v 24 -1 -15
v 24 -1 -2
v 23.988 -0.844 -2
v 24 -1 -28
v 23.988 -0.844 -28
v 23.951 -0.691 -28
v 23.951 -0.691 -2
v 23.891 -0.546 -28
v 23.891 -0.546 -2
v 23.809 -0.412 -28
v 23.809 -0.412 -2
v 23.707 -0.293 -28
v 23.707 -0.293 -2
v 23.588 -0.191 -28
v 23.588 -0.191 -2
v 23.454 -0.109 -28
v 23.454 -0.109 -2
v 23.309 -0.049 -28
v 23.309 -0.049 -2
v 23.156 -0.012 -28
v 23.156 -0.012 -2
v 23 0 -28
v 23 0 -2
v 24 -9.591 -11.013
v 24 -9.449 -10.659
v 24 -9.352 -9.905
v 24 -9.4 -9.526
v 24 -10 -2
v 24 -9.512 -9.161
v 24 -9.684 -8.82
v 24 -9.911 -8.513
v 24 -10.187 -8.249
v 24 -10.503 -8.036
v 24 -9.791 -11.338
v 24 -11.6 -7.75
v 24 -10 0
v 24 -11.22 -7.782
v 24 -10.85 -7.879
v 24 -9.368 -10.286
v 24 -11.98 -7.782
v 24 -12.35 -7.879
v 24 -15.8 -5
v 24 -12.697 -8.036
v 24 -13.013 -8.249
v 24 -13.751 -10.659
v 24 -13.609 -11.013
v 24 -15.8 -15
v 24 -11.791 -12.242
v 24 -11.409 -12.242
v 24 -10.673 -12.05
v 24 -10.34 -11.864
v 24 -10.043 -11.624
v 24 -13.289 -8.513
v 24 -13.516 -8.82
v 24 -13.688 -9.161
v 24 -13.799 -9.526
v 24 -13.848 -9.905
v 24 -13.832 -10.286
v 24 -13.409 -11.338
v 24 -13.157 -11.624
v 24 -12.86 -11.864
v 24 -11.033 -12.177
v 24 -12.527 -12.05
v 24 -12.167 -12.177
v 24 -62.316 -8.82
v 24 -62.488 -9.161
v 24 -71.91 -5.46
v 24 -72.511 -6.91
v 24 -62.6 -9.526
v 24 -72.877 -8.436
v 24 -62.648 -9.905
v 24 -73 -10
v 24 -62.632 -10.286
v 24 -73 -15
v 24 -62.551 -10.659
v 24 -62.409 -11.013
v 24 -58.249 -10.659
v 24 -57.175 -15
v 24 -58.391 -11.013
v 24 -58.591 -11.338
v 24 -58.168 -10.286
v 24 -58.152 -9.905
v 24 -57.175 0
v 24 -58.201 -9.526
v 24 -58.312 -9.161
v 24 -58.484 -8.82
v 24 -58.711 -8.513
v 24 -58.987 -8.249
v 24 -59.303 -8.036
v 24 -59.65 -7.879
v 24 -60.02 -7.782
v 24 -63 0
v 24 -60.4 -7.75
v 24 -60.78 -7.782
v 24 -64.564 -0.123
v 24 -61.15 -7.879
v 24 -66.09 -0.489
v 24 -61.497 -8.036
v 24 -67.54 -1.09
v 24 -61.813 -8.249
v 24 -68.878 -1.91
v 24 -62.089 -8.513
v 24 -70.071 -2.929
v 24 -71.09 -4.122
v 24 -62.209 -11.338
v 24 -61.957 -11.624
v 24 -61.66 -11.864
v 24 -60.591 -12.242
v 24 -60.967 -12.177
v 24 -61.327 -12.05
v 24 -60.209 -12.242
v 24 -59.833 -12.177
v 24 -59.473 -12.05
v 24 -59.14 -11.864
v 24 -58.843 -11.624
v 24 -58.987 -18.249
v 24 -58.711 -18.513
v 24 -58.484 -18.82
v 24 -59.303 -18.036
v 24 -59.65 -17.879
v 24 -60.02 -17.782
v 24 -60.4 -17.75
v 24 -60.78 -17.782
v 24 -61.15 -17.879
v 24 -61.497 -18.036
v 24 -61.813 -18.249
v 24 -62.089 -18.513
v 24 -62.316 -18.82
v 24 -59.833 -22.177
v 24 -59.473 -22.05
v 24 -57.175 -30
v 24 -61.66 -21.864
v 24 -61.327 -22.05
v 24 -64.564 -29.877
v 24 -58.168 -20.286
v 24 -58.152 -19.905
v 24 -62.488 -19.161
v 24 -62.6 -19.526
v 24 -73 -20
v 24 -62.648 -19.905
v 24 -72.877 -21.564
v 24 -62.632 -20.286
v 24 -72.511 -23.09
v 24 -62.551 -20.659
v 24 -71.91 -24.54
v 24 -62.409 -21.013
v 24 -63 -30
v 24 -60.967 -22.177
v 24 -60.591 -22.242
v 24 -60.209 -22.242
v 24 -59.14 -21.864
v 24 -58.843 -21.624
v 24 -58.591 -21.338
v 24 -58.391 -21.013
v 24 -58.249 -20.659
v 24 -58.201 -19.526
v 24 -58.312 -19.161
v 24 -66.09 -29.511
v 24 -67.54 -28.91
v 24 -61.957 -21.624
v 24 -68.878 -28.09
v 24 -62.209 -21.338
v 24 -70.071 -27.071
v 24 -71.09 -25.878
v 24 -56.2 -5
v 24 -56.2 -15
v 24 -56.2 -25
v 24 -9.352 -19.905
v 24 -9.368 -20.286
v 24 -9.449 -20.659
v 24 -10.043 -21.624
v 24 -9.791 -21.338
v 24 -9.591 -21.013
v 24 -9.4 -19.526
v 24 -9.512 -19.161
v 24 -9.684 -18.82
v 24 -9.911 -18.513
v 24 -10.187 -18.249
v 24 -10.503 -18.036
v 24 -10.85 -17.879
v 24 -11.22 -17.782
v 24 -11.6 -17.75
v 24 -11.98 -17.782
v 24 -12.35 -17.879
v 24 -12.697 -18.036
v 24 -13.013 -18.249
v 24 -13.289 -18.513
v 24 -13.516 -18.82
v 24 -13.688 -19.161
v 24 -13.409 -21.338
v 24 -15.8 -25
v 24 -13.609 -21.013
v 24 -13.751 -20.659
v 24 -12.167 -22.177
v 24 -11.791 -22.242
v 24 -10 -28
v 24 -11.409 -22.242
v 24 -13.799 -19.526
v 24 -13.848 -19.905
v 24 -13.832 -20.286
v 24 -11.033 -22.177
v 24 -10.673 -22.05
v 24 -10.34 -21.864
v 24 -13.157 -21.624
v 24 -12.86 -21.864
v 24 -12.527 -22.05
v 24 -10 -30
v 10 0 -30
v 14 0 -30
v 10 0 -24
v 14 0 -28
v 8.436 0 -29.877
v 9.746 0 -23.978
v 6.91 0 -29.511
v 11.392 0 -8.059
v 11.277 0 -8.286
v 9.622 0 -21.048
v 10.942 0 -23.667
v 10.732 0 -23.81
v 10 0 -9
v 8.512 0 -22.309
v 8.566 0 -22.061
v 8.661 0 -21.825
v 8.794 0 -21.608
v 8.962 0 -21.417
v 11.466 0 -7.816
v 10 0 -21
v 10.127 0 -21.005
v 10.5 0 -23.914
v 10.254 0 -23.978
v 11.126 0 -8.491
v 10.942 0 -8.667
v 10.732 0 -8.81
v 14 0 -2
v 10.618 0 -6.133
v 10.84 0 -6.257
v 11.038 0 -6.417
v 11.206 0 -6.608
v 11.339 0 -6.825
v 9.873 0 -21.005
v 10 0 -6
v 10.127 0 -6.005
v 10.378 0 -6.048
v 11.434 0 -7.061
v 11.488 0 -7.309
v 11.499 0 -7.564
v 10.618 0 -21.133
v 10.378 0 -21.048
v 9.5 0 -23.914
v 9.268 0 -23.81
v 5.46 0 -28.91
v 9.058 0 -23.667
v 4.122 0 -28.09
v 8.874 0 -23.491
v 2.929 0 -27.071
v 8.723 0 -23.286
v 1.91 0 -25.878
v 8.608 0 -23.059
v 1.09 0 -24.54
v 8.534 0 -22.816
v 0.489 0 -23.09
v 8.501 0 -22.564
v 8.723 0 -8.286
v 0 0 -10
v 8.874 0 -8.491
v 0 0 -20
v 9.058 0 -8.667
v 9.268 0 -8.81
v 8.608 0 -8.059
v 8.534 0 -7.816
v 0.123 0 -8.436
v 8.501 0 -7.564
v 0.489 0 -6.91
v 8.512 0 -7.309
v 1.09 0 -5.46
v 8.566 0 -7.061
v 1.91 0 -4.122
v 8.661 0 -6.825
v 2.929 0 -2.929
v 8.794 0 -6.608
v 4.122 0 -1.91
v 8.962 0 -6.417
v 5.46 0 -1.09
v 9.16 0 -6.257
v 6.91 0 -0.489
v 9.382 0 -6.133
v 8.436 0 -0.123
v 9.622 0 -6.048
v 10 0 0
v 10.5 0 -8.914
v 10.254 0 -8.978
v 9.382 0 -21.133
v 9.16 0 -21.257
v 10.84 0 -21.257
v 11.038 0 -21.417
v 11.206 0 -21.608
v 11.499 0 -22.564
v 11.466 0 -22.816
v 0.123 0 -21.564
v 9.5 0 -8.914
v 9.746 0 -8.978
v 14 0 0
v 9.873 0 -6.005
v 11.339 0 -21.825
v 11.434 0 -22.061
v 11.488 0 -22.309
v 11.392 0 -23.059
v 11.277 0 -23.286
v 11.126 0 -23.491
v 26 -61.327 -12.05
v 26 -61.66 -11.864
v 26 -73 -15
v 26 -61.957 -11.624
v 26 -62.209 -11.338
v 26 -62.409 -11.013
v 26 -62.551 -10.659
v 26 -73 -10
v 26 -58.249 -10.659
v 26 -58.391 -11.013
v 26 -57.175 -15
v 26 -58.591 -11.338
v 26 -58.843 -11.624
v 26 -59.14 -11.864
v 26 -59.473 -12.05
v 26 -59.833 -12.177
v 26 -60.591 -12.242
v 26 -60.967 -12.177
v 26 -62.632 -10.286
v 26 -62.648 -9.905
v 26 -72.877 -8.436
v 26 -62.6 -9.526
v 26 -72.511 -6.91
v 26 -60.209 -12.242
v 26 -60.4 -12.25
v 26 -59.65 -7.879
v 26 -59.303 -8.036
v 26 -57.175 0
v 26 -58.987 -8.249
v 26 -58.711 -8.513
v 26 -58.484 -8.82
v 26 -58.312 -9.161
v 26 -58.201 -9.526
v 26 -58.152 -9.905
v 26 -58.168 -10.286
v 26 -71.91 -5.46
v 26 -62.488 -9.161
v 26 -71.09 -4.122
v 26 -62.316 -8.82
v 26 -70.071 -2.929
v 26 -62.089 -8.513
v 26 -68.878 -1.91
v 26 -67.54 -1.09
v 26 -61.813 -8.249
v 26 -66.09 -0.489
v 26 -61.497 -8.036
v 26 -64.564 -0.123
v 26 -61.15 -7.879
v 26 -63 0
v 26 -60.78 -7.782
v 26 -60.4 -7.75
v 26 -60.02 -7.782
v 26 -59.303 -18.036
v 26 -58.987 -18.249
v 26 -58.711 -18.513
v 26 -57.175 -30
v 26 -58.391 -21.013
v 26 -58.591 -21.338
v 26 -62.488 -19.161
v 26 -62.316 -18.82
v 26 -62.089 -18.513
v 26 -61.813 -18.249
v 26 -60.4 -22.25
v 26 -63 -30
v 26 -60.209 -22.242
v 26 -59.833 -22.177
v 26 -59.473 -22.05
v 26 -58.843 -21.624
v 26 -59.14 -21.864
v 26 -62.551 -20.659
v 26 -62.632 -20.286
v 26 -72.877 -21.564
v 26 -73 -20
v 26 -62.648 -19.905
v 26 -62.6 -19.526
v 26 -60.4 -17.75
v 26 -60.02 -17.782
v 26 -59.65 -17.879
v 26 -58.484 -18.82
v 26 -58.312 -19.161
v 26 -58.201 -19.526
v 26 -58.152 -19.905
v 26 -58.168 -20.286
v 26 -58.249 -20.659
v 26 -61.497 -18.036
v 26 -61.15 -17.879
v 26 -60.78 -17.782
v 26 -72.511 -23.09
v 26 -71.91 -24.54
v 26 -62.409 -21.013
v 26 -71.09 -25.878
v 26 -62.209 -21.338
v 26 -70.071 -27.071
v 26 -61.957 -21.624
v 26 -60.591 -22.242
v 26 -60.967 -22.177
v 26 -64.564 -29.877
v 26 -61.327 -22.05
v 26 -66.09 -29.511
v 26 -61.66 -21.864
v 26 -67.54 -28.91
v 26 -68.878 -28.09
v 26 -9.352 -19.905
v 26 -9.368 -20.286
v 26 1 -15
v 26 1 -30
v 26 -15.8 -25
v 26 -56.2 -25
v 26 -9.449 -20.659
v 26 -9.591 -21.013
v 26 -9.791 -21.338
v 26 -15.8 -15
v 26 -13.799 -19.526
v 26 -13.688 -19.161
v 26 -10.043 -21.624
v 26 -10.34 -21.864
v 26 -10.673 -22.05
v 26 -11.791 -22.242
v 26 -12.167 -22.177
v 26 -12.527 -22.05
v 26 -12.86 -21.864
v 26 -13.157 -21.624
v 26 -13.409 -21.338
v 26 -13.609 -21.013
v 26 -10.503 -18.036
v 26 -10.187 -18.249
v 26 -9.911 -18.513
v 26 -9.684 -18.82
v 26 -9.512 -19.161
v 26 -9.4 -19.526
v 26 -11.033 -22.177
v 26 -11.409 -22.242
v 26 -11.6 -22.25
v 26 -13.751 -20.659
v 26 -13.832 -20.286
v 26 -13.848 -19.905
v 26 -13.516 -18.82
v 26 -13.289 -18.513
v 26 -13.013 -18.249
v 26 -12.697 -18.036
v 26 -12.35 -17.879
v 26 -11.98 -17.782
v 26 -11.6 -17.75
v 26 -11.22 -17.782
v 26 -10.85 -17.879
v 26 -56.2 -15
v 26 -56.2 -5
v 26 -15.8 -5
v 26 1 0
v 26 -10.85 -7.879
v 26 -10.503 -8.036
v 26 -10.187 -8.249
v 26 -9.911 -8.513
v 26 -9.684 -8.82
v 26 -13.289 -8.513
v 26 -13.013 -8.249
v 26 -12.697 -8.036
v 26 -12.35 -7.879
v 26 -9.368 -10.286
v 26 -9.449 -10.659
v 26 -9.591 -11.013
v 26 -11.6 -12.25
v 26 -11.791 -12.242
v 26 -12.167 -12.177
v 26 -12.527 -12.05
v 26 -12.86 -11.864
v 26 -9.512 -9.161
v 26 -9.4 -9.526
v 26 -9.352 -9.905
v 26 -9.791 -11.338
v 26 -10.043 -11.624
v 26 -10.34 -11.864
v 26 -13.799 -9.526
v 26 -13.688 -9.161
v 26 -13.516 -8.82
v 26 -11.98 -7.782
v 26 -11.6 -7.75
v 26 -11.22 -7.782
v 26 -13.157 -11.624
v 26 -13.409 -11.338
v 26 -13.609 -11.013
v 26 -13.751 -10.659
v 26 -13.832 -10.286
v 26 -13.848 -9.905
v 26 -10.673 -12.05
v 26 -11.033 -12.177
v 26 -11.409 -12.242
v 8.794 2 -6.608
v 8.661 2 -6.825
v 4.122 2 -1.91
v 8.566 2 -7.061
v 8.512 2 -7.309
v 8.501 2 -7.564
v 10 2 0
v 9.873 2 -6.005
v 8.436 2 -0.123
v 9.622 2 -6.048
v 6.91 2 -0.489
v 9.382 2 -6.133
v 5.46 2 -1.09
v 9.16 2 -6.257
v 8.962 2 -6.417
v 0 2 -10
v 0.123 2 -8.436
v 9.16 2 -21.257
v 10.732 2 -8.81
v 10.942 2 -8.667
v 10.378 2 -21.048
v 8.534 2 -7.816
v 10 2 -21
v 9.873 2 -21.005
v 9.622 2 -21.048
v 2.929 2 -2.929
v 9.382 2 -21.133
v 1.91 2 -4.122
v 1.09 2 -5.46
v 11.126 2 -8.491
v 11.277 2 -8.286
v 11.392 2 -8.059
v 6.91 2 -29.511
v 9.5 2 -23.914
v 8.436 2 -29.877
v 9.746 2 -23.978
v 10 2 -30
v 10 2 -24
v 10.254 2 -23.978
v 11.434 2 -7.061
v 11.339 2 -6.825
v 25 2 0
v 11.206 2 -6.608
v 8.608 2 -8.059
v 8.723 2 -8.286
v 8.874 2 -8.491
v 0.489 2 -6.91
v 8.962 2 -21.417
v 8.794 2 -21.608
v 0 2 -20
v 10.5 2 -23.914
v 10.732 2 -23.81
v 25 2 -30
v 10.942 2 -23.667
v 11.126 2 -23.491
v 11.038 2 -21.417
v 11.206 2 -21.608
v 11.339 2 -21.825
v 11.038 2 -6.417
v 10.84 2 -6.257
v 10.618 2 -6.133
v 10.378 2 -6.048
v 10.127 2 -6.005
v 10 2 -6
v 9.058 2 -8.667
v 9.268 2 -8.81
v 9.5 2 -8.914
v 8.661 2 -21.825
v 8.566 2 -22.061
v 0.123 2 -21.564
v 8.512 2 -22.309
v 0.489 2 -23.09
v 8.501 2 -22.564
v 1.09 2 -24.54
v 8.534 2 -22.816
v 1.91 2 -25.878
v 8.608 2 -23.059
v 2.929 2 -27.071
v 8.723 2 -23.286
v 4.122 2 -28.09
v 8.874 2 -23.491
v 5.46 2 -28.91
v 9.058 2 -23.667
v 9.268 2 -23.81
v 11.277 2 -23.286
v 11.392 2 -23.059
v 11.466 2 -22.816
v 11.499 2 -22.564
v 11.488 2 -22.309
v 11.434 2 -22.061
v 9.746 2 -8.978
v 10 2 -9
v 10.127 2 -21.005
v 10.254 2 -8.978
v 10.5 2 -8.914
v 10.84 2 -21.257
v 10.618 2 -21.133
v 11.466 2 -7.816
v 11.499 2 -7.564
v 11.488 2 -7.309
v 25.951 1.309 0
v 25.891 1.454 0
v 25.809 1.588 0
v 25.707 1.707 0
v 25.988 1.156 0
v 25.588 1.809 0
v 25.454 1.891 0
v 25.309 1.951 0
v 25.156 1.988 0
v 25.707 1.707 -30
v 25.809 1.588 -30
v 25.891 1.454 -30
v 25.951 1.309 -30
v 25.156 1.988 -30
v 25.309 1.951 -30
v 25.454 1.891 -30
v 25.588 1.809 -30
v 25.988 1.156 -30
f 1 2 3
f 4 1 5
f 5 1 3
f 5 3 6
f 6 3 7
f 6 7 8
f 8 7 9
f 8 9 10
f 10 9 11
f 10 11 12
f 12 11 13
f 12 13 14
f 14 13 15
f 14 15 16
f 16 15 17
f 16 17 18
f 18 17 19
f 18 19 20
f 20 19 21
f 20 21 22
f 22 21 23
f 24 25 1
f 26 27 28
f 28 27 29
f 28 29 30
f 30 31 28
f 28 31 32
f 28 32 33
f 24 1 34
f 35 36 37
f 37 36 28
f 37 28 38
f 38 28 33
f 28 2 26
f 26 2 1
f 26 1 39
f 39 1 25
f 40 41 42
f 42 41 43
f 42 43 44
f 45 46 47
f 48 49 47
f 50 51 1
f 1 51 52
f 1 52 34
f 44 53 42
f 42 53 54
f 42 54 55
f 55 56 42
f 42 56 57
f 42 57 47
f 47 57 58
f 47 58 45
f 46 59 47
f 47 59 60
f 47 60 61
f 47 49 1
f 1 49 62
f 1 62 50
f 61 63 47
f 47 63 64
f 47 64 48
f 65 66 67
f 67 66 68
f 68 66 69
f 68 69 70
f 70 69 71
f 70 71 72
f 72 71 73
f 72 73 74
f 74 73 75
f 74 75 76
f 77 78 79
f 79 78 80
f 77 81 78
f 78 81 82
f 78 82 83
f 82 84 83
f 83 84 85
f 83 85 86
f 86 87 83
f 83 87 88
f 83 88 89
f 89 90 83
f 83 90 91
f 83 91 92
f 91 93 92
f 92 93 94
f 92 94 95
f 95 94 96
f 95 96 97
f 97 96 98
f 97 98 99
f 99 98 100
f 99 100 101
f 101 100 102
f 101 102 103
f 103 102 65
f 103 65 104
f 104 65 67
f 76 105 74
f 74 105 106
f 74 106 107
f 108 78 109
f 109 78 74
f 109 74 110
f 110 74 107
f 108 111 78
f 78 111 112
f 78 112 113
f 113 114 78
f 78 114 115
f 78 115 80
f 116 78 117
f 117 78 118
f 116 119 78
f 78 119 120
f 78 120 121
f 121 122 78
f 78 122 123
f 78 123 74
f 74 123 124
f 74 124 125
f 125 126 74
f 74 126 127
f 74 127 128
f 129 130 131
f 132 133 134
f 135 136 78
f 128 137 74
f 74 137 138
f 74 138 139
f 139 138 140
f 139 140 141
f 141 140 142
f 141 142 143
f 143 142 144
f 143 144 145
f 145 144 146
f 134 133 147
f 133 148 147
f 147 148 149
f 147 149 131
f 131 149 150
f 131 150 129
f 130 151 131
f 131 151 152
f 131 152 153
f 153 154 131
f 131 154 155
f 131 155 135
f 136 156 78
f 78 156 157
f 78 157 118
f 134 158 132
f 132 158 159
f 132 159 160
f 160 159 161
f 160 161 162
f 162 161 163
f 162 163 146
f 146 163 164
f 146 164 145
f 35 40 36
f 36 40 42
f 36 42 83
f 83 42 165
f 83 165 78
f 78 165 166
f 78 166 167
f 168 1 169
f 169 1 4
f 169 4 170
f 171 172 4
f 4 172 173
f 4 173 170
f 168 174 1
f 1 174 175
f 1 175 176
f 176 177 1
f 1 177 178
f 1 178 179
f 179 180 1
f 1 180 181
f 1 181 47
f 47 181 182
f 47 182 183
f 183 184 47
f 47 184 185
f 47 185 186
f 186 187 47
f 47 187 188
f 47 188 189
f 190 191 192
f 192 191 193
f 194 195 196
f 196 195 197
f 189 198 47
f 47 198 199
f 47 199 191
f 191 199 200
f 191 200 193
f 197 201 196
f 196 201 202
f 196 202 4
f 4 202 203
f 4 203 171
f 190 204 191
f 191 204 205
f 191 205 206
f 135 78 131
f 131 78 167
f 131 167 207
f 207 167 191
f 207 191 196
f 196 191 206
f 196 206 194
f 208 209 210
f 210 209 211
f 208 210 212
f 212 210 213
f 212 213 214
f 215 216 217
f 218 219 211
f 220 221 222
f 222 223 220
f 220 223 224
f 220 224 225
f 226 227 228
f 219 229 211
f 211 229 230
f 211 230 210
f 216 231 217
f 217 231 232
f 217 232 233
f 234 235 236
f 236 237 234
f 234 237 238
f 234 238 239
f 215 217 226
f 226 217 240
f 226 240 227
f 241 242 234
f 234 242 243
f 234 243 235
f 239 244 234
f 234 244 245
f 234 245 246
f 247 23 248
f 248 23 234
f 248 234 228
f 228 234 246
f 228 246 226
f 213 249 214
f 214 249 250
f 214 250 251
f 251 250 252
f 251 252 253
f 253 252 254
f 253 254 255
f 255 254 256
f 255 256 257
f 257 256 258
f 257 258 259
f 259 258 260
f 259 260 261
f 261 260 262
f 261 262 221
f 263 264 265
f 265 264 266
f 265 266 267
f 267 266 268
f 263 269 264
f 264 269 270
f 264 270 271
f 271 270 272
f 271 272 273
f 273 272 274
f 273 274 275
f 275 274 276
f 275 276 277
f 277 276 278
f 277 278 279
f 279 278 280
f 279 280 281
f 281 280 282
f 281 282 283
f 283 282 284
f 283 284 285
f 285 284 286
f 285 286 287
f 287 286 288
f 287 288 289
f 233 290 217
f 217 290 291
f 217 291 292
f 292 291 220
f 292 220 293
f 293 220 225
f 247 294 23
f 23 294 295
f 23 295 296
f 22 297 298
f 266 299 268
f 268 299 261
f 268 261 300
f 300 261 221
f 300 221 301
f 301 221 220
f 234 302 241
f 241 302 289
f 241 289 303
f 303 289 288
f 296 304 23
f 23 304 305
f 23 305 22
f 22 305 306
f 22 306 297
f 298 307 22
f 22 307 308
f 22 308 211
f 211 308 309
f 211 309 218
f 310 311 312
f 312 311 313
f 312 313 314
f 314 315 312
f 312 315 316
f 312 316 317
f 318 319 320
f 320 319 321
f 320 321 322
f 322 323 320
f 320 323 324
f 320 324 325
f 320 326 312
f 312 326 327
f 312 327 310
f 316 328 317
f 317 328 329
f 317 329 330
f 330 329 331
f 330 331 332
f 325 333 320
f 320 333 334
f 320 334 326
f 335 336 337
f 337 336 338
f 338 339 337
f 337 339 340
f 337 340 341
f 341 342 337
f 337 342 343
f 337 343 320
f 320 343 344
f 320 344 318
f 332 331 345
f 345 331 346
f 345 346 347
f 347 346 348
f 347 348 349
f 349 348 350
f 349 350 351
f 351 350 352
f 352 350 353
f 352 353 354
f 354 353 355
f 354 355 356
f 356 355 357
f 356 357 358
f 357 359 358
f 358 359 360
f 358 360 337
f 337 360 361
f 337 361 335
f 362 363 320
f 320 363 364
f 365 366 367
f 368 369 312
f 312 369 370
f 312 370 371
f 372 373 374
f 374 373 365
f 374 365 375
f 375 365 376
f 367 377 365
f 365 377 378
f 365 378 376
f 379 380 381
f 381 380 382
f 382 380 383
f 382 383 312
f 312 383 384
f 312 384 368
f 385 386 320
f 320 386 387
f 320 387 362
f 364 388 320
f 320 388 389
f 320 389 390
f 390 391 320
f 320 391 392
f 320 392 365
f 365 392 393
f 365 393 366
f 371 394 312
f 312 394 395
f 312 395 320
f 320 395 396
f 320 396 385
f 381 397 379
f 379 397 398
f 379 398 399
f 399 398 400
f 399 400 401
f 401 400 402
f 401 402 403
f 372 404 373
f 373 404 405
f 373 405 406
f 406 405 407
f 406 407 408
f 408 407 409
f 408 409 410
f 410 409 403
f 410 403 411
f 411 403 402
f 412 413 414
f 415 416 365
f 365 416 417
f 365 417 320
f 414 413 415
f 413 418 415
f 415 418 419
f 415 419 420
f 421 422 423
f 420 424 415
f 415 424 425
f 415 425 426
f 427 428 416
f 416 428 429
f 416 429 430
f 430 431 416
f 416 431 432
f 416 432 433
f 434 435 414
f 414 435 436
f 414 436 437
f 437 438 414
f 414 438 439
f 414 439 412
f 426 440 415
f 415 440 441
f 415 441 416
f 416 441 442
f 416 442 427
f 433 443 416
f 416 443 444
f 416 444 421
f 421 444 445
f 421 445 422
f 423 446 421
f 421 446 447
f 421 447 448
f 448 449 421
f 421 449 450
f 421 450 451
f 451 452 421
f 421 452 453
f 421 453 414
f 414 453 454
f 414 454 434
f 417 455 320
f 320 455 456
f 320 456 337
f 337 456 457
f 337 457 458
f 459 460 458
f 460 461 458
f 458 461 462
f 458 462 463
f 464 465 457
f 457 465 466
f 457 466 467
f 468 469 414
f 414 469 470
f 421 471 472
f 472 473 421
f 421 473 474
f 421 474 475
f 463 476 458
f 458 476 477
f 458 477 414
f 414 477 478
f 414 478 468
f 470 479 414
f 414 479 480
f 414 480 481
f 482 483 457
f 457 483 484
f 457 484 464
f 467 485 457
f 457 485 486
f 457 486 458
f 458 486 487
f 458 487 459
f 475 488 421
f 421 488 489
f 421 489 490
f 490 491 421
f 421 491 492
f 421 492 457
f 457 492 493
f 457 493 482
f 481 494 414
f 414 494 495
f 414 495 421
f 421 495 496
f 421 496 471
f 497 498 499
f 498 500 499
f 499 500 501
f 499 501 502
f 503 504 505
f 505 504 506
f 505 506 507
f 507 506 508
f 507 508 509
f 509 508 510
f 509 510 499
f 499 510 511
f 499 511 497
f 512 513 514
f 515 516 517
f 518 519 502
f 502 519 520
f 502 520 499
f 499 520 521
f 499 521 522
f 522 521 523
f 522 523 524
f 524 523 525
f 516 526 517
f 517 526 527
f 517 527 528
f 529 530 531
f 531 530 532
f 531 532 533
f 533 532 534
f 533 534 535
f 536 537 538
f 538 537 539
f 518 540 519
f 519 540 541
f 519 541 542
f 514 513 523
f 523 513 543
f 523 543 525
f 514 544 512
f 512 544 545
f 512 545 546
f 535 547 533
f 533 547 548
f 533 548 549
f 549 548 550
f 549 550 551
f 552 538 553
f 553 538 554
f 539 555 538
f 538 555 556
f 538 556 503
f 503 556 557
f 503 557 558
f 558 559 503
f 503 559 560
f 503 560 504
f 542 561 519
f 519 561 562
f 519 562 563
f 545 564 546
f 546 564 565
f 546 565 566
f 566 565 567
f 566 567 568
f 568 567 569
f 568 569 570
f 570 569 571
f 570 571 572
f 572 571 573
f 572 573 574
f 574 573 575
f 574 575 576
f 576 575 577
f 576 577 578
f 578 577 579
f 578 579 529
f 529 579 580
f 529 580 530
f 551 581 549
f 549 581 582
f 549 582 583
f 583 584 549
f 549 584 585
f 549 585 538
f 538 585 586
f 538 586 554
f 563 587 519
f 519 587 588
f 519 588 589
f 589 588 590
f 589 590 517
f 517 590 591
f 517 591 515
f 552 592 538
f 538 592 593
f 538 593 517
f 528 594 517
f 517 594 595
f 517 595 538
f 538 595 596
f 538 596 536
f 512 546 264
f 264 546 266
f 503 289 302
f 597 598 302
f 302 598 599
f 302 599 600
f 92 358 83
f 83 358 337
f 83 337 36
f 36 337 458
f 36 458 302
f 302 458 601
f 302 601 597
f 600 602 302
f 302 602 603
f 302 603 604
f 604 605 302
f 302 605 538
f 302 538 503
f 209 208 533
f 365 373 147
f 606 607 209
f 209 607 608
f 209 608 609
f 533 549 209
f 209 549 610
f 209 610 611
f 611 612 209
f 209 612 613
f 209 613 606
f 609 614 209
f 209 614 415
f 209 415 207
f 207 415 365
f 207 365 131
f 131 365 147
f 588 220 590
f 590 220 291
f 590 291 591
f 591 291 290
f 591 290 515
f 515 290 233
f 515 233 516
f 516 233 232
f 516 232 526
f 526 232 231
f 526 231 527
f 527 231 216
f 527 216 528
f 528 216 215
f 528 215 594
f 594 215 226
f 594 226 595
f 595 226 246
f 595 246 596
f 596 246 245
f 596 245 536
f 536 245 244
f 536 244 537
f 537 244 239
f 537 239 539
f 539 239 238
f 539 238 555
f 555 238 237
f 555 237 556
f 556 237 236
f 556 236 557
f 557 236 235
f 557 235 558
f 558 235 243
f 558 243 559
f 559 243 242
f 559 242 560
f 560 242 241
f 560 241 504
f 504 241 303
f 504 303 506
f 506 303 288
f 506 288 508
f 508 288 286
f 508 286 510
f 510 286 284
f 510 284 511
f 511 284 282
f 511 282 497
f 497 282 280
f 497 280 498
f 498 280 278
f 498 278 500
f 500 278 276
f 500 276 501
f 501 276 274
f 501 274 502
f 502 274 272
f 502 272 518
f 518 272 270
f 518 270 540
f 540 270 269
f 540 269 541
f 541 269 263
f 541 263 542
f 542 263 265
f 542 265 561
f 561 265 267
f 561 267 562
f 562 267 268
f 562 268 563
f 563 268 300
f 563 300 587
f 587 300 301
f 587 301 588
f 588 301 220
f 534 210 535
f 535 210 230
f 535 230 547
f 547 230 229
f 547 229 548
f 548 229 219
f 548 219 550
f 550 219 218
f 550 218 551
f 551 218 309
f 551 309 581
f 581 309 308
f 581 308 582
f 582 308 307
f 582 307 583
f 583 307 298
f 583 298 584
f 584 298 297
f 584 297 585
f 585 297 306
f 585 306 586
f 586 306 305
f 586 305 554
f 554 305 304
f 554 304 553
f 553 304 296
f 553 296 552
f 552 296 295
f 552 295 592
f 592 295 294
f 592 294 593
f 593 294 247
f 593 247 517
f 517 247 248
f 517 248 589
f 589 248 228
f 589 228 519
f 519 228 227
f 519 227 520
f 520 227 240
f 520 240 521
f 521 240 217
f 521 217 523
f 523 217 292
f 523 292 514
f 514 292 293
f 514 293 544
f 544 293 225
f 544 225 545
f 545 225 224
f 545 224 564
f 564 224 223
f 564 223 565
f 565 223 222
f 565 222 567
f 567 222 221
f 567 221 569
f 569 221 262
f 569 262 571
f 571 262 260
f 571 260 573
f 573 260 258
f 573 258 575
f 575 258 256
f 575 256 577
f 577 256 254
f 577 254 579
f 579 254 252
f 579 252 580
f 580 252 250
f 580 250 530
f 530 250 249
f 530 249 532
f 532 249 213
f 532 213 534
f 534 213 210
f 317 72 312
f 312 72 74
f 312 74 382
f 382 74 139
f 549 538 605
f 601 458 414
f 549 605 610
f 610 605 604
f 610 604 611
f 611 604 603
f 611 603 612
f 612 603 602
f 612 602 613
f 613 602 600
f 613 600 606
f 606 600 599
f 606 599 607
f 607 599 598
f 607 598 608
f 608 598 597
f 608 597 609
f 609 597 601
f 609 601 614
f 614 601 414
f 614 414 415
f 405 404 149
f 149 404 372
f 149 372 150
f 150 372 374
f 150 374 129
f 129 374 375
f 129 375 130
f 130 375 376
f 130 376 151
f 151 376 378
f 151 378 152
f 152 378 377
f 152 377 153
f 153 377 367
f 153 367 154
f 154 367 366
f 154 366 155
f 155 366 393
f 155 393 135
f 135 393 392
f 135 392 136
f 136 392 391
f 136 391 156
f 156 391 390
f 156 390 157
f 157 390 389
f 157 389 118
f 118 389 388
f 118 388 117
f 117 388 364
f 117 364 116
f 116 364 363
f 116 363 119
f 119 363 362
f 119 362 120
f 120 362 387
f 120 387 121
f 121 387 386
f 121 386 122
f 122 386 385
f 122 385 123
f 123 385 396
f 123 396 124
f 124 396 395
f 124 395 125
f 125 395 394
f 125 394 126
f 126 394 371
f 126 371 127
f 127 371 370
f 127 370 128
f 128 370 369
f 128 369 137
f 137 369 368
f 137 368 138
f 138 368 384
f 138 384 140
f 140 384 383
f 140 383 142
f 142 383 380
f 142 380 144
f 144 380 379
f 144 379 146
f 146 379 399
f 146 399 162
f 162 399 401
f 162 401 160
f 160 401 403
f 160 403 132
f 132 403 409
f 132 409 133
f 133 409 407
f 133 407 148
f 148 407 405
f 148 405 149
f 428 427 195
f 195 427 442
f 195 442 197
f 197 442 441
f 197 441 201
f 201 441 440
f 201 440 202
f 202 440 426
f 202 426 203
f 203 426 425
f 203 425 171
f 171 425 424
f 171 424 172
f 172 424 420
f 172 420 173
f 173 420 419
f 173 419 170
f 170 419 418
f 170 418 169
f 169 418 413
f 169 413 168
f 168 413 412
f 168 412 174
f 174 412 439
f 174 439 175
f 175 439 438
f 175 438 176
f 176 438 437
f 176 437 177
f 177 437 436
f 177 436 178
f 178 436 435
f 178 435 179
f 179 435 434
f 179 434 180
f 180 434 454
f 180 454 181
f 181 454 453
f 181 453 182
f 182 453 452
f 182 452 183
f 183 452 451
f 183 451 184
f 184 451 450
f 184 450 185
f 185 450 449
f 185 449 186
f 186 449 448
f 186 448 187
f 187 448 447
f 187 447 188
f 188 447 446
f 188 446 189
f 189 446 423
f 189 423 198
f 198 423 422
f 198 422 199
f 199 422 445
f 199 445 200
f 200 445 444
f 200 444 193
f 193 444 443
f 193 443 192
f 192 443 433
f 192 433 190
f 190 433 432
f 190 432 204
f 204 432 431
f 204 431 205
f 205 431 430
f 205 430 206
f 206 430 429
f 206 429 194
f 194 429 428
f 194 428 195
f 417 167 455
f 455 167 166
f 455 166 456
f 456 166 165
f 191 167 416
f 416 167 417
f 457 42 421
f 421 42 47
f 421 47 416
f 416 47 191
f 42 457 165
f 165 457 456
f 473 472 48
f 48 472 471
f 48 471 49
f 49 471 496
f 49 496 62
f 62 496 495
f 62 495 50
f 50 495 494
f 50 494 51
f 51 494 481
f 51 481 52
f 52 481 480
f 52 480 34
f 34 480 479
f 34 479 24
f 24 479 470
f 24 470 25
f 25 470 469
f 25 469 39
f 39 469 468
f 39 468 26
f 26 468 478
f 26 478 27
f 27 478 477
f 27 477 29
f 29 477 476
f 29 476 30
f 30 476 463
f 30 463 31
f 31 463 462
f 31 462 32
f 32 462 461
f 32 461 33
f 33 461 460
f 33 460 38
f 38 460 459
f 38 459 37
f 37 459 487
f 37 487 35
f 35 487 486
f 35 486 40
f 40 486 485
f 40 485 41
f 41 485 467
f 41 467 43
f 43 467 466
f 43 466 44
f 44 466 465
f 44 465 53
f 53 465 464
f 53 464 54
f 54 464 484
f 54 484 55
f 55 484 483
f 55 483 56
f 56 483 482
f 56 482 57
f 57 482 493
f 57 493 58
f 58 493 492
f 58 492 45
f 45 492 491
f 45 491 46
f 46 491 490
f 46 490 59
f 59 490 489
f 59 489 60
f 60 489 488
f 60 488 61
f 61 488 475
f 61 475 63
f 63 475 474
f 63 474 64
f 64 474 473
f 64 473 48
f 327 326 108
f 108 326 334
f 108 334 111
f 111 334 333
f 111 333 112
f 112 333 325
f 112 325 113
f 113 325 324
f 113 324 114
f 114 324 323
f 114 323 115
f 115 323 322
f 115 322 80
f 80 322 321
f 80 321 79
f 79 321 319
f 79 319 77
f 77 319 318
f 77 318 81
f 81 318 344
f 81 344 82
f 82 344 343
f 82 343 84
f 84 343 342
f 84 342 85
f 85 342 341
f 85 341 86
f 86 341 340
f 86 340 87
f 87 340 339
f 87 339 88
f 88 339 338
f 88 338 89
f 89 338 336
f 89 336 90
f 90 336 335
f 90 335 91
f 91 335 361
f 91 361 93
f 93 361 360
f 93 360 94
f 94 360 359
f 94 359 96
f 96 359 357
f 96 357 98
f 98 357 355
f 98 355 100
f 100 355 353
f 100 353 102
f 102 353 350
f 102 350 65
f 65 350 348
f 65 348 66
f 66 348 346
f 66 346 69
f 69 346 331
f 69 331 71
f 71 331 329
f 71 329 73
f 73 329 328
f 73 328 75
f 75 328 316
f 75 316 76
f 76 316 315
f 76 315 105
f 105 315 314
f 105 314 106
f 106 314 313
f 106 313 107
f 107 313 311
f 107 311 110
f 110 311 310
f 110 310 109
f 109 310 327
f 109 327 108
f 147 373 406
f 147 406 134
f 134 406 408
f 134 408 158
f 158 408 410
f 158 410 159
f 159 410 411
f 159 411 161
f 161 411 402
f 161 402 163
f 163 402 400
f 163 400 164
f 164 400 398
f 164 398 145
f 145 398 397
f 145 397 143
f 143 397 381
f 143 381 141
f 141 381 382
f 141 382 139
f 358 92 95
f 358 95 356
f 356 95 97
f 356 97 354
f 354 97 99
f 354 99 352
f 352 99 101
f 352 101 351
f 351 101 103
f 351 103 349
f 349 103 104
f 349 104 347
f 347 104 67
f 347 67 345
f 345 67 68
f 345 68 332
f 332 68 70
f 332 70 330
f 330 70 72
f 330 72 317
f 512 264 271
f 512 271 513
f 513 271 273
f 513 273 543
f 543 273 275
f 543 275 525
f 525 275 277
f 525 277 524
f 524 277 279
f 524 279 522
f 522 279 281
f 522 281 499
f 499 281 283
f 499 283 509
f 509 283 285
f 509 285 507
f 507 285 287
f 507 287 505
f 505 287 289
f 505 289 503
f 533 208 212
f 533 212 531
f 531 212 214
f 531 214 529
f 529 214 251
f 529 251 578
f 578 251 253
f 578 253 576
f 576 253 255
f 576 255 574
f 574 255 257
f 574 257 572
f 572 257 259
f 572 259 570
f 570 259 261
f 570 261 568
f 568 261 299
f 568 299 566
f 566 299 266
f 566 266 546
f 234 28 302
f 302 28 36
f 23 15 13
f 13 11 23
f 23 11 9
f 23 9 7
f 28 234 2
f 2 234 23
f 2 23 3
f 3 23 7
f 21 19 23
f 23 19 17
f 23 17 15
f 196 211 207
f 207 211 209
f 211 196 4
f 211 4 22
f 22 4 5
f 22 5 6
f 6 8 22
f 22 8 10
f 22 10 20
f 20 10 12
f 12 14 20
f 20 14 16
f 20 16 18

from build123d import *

# Parameters (mm, degrees)
SKETCH1_W           = 25
SKETCH1_H           = 30
SKETCH1_R           = 1.5
BOSS_EXTRUDE1_DEPTH = 2
BOSS_EXTRUDE2_DEPTH = 75
FILLET1_R           = 1
SKETCH3_R           = 2.25
SKETCH3_W           = 0.5
SKETCH3_H           = 6.8
CUT_EXTRUDE1_DEPTH  = 75
SKETCH5_W           = 1
SKETCH5_H           = 6.8
BOSS_EXTRUDE3_DEPTH = 2
FILLET2_R           = 10
BOSS_EXTRUDE4_DEPTH = 2


with BuildPart() as part:
    # Sketch1 → Boss-Extrude1 (new body)
    with BuildSketch(Plane(origin=(0, 0, 0), x_dir=(1, 0, 0), z_dir=(0, 1, 0))):
        with Locations((12.5, 15)):
            Rectangle(SKETCH1_W, SKETCH1_H)
        with Locations(Location((10, 22.5, 0), (0, 0, 270))):
            Circle(SKETCH1_R, mode=Mode.SUBTRACT)
        with Locations(Location((10, 7.5, 0), (0, 0, 270))):
            Circle(SKETCH1_R, mode=Mode.SUBTRACT)
    extrude(amount=BOSS_EXTRUDE1_DEPTH)

    # Sketch2 → Boss-Extrude2 (add)
    with BuildSketch(Plane(origin=(0, 2, 0), x_dir=(1, 0, 0), z_dir=(0, 1, 0))):
        Polygon((25, 30), (24, 30), (24, 0), (25, 0), (26, 0), (26, 30), align=None)
    extrude(amount=-BOSS_EXTRUDE2_DEPTH)

    # Fillet1
    fillet1_edges = [part.edges().sort_by_distance(p)[0] for p in [
        (26, 2, -15),
        (24, 0, -15),
    ]]
    fillet(fillet1_edges, radius=FILLET1_R)

    # Sketch3 → Cut-Extrude1 (cut)
    with BuildSketch(Plane.ZY.offset(-24)):
        with Locations((-20, -60.4)):
            Circle(SKETCH3_R)
        Polygon((-15, -56.2), (-15, -15.8), (-15.5, -15.8), (-25, -15.8), (-25, -56.2), (-15.5, -56.2), align=None)
        with Locations((-10, -60.4)):
            Circle(SKETCH3_R)
        with Locations((-15.25, -59.6)):
            Rectangle(SKETCH3_W, SKETCH3_H)
        with Locations((-14.75, -59.6)):
            Rectangle(SKETCH3_W, SKETCH3_H)
        Polygon((-14.5, -15.8), (-15, -15.8), (-15, -56.2), (-14.5, -56.2), (-5, -56.2), (-5, -15.8), align=None)
        with Locations((-10, -11.6)):
            Circle(SKETCH3_R)
        with Locations((-20, -11.6)):
            Circle(SKETCH3_R)
        with Locations((-15.25, -12.4)):
            Rectangle(SKETCH3_W, SKETCH3_H)
        with Locations((-14.75, -12.4)):
            Rectangle(SKETCH3_W, SKETCH3_H)
    extrude(amount=-CUT_EXTRUDE1_DEPTH, mode=Mode.SUBTRACT)

    # Sketch5 → Boss-Extrude3 (add)
    with BuildSketch(Plane(origin=(26, 0, 0), x_dir=(0, 0, -1), z_dir=(1, 0, 0))):
        with Locations((15, -12.4)):
            Rectangle(SKETCH5_W, SKETCH5_H)
        with Locations((15, -59.6)):
            Rectangle(SKETCH5_W, SKETCH5_H)
    extrude(amount=-BOSS_EXTRUDE3_DEPTH)

    # Fillet2
    fillet2_edges = [part.edges().sort_by_distance(p)[0] for p in [
        (25, -73, 0),
        (25, -73, -30),
        (0, 1, -30),
        (0, 1, 0),
    ]]
    fillet(fillet2_edges, radius=FILLET2_R)

    # Sketch8 → Boss-Extrude4 (add)
    with BuildSketch(Plane.XY):
        with BuildLine():
            Line((23, 0), (14, 0))
            Line((14, 0), (24, -10))
            Line((24, -10), (24, -1))
            ThreePointArc((24, -1), (23.707106781, -0.292893219), (23, 0))
        make_face()
    boss_extrude4 = extrude(amount=-BOSS_EXTRUDE4_DEPTH)

    # Mirror1: Boss-Extrude4 across plane
    add(boss_extrude4.mirror(Plane.XY.offset(-15)))


solid = part.part
